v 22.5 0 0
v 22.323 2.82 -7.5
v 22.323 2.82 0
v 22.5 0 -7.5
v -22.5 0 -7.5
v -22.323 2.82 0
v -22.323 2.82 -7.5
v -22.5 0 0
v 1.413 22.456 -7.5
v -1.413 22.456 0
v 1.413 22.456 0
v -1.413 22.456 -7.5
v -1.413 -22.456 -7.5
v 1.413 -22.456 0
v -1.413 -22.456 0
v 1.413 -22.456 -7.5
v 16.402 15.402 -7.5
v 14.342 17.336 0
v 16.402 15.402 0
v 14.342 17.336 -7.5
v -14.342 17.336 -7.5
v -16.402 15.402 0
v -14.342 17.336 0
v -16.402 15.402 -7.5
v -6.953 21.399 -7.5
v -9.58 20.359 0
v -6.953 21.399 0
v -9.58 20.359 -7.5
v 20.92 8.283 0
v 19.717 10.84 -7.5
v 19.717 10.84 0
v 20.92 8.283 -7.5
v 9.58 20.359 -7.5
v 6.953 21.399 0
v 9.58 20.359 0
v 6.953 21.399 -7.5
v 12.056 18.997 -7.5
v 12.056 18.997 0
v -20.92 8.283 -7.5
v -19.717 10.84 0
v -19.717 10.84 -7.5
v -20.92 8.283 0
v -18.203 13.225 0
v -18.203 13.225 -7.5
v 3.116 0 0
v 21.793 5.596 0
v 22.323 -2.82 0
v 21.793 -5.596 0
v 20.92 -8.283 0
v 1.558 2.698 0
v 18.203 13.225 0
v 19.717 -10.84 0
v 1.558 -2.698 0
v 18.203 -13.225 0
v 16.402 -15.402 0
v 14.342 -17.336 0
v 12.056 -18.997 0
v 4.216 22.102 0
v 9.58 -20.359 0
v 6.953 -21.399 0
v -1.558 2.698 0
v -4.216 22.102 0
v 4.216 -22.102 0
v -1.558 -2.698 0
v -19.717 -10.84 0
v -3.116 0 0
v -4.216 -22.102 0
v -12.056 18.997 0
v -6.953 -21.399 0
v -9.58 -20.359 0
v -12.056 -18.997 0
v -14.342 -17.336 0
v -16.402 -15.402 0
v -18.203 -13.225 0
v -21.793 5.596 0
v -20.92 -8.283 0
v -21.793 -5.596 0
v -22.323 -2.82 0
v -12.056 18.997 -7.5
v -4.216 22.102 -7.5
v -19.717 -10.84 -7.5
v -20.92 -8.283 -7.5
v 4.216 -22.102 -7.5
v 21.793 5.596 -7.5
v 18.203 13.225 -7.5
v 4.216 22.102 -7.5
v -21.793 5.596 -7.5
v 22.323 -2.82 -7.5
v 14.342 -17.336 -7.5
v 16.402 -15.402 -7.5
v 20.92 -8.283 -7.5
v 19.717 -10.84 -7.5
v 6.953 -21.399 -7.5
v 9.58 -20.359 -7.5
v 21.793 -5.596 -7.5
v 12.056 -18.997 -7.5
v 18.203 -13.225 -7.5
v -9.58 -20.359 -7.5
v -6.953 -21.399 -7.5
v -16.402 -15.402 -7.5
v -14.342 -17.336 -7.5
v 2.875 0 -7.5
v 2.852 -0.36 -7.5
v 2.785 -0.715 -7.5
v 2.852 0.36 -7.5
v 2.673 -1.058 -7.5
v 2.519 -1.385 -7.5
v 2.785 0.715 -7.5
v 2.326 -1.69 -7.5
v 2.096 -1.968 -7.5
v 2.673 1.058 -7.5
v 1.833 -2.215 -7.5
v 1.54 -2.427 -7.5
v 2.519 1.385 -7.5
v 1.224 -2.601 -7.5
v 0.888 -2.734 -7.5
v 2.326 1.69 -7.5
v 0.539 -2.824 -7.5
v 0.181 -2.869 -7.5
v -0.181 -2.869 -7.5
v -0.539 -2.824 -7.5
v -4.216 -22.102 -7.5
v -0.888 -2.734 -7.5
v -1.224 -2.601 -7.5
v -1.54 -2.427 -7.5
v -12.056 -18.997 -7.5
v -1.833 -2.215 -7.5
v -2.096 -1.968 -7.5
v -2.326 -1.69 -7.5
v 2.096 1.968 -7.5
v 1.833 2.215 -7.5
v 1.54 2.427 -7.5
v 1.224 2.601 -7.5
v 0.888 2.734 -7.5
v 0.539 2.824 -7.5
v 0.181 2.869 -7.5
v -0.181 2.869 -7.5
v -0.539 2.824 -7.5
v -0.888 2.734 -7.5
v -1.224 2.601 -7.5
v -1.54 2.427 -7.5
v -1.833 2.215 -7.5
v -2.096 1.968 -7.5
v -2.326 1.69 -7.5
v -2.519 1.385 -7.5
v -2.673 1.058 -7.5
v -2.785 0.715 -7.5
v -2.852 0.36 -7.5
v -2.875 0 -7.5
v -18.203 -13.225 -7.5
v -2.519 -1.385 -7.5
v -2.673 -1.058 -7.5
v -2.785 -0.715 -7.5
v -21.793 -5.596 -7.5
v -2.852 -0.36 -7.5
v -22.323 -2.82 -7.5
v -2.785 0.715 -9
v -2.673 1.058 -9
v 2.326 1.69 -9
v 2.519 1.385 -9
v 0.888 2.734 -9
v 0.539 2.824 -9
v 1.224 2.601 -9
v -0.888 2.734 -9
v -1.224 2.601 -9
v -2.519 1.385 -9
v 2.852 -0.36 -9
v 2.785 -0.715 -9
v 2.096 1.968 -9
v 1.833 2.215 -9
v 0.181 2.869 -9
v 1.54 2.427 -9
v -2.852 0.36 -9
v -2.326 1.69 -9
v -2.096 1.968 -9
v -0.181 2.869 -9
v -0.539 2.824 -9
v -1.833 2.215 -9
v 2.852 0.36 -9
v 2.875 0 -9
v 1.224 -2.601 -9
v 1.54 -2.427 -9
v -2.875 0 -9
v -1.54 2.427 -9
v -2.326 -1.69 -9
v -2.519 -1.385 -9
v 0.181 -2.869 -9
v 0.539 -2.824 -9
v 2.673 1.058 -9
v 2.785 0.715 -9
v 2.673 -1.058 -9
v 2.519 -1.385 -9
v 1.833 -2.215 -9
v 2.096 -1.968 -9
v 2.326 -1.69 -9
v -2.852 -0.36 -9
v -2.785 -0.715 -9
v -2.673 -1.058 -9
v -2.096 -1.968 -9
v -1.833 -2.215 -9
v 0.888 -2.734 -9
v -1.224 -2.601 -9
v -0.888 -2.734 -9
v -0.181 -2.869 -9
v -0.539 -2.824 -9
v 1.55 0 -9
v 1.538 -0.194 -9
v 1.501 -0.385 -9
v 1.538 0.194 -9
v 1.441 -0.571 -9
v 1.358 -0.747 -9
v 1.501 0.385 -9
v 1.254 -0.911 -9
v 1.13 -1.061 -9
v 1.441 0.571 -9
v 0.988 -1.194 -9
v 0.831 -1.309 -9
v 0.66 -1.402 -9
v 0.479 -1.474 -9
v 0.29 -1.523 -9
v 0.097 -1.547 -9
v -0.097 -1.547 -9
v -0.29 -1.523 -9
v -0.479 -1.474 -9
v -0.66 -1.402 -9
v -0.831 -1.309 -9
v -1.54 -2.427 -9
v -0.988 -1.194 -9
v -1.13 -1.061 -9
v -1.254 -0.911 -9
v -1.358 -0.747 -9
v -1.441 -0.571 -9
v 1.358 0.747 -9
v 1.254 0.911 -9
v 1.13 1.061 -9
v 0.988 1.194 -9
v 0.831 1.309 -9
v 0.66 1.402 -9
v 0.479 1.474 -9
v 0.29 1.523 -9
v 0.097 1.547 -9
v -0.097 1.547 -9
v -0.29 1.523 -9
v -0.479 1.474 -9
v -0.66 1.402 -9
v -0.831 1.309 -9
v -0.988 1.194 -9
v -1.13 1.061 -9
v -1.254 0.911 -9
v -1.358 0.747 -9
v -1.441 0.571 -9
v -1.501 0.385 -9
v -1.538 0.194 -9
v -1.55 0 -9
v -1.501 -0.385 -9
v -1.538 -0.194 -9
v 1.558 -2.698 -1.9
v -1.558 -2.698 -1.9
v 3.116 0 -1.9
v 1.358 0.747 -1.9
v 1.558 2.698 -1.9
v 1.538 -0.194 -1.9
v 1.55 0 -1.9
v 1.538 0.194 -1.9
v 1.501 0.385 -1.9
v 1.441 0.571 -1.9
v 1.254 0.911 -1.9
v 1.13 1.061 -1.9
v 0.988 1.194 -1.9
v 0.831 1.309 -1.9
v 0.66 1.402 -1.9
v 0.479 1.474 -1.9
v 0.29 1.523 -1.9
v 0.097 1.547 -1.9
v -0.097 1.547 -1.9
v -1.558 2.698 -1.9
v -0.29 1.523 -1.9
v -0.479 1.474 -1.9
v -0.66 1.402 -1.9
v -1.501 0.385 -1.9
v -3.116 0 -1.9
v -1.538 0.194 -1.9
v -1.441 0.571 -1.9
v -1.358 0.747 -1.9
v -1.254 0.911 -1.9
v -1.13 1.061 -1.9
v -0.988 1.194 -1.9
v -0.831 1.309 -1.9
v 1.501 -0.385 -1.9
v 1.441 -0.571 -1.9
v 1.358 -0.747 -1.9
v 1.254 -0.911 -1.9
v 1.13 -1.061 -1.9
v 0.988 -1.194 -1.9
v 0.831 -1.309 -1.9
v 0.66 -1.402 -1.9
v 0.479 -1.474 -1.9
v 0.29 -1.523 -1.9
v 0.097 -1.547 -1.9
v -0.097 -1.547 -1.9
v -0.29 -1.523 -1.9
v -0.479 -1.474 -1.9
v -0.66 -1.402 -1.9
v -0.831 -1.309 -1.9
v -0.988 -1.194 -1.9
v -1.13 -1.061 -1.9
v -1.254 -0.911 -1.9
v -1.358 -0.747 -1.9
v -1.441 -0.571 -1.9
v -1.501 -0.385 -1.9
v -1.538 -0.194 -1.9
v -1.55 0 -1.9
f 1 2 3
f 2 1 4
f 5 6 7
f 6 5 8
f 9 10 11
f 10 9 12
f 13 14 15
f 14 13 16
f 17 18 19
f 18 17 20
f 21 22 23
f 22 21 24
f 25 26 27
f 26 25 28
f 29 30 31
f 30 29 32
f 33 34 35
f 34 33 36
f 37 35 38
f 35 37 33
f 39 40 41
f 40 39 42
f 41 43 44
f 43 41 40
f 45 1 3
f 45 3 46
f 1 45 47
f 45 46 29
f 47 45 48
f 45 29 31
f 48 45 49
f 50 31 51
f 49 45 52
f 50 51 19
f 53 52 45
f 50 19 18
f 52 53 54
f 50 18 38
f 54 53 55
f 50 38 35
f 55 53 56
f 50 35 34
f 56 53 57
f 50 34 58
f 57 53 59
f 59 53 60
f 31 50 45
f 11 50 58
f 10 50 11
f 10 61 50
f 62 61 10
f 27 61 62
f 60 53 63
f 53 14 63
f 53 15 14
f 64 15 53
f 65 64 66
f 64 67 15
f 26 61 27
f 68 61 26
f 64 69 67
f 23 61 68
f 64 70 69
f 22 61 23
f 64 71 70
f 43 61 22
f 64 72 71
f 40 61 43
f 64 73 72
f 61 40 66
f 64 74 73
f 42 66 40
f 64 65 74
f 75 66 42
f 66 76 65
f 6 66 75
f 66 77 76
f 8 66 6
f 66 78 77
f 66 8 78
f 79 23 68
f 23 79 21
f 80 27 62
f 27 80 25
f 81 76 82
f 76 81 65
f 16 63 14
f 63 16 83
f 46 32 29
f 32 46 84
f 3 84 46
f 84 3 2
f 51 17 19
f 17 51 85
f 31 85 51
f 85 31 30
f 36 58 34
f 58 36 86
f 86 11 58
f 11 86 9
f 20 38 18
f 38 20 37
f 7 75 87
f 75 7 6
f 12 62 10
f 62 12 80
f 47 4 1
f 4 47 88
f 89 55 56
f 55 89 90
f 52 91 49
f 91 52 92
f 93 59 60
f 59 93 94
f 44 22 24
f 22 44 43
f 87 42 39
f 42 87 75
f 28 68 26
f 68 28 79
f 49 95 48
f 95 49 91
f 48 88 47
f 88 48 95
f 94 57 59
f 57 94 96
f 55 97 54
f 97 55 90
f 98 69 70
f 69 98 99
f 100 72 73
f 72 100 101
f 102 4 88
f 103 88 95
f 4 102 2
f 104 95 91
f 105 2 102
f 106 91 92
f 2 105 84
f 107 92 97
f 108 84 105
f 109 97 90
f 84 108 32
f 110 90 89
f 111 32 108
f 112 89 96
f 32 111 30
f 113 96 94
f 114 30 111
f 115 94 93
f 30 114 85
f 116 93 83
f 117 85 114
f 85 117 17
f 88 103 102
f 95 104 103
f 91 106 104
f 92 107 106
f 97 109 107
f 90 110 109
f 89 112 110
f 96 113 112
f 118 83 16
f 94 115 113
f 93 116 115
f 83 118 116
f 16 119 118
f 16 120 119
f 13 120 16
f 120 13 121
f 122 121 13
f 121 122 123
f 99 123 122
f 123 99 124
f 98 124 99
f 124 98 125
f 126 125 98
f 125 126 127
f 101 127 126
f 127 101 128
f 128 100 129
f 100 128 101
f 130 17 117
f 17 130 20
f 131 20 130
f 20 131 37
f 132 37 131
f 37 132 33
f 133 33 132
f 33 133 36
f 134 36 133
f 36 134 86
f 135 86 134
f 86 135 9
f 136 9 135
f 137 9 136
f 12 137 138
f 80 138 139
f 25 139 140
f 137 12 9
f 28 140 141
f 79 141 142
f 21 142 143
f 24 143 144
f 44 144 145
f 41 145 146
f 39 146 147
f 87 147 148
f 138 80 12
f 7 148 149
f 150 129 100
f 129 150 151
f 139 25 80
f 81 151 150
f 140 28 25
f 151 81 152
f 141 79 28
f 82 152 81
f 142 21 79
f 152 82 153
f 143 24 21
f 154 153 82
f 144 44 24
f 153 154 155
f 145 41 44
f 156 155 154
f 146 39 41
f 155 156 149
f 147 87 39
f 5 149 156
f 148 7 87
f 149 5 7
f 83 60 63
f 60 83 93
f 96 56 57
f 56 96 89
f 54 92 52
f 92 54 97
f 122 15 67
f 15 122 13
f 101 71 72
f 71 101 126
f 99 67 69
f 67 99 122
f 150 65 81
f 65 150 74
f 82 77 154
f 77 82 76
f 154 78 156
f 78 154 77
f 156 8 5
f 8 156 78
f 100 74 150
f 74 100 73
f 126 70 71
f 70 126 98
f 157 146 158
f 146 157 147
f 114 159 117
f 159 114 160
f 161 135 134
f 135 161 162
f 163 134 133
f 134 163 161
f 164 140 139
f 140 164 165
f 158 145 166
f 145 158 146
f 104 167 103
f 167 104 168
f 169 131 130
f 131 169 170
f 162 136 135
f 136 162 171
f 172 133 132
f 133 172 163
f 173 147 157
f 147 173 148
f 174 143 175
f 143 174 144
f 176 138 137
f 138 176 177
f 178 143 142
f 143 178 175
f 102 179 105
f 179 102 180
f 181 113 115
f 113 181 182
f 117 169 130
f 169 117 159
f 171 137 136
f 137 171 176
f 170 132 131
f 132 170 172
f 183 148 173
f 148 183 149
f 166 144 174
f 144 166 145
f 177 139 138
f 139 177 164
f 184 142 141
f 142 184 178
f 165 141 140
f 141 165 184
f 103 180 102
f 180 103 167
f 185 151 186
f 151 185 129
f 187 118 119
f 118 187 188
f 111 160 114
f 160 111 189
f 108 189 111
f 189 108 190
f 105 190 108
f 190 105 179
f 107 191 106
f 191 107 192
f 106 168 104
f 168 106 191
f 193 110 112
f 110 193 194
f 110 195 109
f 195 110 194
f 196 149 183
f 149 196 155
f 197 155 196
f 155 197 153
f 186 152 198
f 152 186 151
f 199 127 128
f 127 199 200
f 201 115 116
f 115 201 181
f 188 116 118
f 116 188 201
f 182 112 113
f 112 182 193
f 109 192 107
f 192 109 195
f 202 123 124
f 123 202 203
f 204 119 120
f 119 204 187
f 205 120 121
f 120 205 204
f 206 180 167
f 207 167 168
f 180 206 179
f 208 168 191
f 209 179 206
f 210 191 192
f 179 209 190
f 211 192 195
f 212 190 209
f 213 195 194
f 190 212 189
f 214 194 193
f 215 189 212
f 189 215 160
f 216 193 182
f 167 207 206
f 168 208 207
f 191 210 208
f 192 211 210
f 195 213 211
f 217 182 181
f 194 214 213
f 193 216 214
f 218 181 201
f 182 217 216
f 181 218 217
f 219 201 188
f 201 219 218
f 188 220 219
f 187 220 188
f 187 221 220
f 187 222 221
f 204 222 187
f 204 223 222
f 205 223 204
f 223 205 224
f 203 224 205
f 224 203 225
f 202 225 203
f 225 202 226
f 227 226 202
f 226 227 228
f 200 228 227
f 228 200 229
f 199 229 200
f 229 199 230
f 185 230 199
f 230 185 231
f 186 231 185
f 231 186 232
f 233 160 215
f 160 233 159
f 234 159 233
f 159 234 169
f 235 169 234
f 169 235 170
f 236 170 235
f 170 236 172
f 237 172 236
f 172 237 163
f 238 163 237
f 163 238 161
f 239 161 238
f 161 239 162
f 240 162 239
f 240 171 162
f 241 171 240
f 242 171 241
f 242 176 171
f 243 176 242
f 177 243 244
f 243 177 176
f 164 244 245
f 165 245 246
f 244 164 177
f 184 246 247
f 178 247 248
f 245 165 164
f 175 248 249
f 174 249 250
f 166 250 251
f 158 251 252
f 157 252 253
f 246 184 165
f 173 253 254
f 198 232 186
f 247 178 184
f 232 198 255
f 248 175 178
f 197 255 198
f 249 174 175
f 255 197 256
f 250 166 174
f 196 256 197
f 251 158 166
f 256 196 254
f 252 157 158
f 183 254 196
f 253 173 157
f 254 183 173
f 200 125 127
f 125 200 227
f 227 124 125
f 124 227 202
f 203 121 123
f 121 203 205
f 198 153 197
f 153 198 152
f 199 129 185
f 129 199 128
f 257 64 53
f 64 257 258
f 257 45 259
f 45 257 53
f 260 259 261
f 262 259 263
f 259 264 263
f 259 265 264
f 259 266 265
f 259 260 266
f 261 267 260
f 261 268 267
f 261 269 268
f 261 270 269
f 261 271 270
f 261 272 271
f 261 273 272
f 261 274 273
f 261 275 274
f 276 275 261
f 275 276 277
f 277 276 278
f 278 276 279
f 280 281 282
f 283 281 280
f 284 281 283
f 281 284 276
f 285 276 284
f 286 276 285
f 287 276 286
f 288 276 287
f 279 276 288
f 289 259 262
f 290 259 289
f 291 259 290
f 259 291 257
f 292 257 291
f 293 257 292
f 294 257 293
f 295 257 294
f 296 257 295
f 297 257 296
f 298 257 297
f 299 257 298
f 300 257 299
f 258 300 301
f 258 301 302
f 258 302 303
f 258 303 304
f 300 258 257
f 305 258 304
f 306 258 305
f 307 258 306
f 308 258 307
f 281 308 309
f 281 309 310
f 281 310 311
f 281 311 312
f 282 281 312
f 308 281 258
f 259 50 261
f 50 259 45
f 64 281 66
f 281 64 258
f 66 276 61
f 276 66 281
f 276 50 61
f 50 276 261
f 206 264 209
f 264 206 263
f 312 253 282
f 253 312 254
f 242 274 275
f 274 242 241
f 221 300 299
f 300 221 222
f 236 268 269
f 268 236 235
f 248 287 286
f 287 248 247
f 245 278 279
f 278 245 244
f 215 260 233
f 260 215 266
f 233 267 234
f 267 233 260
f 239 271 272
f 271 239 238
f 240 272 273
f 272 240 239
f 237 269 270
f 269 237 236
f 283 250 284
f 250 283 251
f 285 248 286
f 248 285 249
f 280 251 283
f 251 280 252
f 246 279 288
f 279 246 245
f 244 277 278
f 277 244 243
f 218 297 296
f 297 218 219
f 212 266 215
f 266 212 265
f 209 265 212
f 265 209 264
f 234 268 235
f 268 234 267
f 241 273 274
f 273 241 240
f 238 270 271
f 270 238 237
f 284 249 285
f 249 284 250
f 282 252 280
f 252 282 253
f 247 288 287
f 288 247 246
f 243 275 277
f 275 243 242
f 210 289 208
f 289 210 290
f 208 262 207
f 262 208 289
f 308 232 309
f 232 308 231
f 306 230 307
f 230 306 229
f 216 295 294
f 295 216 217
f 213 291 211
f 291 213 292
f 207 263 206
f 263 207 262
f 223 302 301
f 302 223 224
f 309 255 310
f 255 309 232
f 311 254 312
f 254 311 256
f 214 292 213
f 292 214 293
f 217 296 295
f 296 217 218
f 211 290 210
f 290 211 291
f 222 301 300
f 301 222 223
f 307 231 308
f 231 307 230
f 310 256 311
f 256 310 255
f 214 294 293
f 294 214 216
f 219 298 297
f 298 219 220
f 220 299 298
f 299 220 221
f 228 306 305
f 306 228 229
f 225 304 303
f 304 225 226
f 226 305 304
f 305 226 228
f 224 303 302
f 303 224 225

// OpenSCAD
$fn = 50;


difference() {
	union() {
		translate(v = [0, 0, -7.5000000000]) {
			cylinder(h = 7.5000000000, r = 22.5000000000);
		}
		translate(v = [0, 0, -9.0000000000]) {
			cylinder(h = 9, r = 2.8750000000);
		}
	}
	union() {
		translate(v = [0, 0, 0]) {
			rotate(a = [0, 0, 0]) {
				difference() {
					union() {
						translate(v = [0, 0, -1.9000000000]) {
							linear_extrude(height = 1.9000000000) {
								polygon(points = [[3.1158000000, 0.0000000000], [1.5579000000, 2.6983619531], [-1.5579000000, 2.6983619531], [-3.1158000000, 0.0000000000], [-1.5579000000, -2.6983619531], [1.5579000000, -2.6983619531]]);
							}
						}
					}
					union();
				}
			}
		}
		#translate(v = [0, 0, -100.0000000000]) {
			cylinder(h = 200, r = 1.5500000000);
		}
	}
}
